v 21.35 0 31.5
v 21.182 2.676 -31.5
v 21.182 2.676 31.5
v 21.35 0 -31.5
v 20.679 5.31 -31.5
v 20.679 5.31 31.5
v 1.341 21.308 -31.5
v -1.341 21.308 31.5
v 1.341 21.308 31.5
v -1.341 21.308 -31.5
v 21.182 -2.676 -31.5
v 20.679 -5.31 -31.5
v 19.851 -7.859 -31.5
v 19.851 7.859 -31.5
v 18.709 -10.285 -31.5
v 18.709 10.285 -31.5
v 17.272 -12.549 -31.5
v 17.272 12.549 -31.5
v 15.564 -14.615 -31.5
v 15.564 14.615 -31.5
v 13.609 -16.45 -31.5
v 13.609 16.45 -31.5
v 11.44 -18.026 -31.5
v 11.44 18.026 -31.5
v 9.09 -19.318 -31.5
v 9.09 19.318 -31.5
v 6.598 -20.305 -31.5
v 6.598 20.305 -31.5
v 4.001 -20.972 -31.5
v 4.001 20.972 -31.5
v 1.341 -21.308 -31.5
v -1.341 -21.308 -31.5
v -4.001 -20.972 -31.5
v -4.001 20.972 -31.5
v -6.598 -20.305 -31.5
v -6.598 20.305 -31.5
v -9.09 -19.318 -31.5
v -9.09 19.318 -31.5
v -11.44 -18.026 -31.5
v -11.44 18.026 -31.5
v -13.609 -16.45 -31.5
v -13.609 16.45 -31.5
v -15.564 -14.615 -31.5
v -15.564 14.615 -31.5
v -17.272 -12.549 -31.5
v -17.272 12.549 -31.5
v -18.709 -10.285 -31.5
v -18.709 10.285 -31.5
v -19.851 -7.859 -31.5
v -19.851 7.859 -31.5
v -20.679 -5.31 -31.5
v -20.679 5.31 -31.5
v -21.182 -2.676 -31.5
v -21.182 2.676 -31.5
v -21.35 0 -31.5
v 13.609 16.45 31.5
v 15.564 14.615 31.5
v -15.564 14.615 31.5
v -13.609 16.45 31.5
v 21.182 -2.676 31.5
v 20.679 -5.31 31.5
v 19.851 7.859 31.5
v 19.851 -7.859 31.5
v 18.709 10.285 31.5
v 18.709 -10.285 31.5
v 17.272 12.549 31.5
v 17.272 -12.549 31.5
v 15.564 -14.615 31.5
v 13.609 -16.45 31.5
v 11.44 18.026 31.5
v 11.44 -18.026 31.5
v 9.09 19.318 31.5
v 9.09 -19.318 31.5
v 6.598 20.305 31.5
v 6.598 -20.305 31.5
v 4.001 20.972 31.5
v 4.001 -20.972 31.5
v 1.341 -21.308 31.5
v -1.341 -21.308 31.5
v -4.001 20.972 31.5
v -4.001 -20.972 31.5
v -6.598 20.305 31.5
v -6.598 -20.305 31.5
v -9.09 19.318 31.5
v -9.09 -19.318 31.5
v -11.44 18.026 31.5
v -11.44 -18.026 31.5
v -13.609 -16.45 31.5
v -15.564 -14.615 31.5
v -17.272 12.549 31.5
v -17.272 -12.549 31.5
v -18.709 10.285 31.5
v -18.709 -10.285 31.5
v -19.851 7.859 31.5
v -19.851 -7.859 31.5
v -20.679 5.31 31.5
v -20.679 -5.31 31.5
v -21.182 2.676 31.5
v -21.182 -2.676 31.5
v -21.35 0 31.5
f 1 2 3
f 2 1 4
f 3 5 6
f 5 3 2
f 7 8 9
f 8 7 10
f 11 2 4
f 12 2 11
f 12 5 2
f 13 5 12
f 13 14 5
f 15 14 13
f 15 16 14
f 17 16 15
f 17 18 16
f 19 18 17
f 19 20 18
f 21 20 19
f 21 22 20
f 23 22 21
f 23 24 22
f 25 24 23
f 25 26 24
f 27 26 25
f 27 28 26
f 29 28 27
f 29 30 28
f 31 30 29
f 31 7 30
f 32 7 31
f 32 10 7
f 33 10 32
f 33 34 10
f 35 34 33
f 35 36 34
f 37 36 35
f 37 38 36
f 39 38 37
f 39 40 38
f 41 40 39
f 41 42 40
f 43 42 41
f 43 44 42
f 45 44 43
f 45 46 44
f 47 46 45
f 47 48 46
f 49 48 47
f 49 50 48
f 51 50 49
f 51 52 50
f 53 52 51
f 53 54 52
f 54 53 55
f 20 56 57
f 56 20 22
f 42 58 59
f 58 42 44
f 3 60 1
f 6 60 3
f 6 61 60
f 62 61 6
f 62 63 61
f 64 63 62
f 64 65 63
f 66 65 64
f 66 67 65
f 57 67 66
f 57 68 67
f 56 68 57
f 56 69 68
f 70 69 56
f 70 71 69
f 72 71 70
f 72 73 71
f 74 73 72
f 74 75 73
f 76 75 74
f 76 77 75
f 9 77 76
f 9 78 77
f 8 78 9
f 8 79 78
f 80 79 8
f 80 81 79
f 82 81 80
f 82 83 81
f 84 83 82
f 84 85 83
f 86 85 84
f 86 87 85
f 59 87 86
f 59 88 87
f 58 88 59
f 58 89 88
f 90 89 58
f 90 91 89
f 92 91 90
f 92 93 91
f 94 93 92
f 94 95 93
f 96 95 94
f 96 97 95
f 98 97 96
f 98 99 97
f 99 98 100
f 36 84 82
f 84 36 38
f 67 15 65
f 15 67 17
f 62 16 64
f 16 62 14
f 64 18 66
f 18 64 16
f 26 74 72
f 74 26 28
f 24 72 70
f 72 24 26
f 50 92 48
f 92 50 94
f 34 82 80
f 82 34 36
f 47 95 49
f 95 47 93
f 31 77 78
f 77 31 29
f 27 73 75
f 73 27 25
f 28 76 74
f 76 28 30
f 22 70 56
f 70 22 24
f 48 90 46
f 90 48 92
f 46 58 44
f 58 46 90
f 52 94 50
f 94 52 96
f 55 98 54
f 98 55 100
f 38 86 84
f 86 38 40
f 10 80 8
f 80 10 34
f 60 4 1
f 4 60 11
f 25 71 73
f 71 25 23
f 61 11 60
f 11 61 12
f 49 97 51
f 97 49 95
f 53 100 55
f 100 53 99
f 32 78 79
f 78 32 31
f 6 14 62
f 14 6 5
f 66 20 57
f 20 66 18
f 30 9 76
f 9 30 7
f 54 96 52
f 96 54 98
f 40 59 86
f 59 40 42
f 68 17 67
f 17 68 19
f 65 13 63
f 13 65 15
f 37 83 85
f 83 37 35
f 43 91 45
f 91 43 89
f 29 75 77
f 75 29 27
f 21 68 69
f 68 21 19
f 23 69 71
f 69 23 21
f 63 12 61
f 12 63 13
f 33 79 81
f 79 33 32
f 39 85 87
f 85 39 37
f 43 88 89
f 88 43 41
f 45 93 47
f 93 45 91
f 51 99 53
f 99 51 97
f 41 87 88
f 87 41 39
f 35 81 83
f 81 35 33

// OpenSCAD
$fn = 50;


difference() {
	union() {
		translate(v = [0, 0, -31.5000000000]) {
			cylinder(h = 63, r = 21.3500000000);
		}
	}
	union() {
		translate(v = [0, 0, -100.0000000000]) {
			cylinder(h = 200, r = 0);
		}
	}
}
